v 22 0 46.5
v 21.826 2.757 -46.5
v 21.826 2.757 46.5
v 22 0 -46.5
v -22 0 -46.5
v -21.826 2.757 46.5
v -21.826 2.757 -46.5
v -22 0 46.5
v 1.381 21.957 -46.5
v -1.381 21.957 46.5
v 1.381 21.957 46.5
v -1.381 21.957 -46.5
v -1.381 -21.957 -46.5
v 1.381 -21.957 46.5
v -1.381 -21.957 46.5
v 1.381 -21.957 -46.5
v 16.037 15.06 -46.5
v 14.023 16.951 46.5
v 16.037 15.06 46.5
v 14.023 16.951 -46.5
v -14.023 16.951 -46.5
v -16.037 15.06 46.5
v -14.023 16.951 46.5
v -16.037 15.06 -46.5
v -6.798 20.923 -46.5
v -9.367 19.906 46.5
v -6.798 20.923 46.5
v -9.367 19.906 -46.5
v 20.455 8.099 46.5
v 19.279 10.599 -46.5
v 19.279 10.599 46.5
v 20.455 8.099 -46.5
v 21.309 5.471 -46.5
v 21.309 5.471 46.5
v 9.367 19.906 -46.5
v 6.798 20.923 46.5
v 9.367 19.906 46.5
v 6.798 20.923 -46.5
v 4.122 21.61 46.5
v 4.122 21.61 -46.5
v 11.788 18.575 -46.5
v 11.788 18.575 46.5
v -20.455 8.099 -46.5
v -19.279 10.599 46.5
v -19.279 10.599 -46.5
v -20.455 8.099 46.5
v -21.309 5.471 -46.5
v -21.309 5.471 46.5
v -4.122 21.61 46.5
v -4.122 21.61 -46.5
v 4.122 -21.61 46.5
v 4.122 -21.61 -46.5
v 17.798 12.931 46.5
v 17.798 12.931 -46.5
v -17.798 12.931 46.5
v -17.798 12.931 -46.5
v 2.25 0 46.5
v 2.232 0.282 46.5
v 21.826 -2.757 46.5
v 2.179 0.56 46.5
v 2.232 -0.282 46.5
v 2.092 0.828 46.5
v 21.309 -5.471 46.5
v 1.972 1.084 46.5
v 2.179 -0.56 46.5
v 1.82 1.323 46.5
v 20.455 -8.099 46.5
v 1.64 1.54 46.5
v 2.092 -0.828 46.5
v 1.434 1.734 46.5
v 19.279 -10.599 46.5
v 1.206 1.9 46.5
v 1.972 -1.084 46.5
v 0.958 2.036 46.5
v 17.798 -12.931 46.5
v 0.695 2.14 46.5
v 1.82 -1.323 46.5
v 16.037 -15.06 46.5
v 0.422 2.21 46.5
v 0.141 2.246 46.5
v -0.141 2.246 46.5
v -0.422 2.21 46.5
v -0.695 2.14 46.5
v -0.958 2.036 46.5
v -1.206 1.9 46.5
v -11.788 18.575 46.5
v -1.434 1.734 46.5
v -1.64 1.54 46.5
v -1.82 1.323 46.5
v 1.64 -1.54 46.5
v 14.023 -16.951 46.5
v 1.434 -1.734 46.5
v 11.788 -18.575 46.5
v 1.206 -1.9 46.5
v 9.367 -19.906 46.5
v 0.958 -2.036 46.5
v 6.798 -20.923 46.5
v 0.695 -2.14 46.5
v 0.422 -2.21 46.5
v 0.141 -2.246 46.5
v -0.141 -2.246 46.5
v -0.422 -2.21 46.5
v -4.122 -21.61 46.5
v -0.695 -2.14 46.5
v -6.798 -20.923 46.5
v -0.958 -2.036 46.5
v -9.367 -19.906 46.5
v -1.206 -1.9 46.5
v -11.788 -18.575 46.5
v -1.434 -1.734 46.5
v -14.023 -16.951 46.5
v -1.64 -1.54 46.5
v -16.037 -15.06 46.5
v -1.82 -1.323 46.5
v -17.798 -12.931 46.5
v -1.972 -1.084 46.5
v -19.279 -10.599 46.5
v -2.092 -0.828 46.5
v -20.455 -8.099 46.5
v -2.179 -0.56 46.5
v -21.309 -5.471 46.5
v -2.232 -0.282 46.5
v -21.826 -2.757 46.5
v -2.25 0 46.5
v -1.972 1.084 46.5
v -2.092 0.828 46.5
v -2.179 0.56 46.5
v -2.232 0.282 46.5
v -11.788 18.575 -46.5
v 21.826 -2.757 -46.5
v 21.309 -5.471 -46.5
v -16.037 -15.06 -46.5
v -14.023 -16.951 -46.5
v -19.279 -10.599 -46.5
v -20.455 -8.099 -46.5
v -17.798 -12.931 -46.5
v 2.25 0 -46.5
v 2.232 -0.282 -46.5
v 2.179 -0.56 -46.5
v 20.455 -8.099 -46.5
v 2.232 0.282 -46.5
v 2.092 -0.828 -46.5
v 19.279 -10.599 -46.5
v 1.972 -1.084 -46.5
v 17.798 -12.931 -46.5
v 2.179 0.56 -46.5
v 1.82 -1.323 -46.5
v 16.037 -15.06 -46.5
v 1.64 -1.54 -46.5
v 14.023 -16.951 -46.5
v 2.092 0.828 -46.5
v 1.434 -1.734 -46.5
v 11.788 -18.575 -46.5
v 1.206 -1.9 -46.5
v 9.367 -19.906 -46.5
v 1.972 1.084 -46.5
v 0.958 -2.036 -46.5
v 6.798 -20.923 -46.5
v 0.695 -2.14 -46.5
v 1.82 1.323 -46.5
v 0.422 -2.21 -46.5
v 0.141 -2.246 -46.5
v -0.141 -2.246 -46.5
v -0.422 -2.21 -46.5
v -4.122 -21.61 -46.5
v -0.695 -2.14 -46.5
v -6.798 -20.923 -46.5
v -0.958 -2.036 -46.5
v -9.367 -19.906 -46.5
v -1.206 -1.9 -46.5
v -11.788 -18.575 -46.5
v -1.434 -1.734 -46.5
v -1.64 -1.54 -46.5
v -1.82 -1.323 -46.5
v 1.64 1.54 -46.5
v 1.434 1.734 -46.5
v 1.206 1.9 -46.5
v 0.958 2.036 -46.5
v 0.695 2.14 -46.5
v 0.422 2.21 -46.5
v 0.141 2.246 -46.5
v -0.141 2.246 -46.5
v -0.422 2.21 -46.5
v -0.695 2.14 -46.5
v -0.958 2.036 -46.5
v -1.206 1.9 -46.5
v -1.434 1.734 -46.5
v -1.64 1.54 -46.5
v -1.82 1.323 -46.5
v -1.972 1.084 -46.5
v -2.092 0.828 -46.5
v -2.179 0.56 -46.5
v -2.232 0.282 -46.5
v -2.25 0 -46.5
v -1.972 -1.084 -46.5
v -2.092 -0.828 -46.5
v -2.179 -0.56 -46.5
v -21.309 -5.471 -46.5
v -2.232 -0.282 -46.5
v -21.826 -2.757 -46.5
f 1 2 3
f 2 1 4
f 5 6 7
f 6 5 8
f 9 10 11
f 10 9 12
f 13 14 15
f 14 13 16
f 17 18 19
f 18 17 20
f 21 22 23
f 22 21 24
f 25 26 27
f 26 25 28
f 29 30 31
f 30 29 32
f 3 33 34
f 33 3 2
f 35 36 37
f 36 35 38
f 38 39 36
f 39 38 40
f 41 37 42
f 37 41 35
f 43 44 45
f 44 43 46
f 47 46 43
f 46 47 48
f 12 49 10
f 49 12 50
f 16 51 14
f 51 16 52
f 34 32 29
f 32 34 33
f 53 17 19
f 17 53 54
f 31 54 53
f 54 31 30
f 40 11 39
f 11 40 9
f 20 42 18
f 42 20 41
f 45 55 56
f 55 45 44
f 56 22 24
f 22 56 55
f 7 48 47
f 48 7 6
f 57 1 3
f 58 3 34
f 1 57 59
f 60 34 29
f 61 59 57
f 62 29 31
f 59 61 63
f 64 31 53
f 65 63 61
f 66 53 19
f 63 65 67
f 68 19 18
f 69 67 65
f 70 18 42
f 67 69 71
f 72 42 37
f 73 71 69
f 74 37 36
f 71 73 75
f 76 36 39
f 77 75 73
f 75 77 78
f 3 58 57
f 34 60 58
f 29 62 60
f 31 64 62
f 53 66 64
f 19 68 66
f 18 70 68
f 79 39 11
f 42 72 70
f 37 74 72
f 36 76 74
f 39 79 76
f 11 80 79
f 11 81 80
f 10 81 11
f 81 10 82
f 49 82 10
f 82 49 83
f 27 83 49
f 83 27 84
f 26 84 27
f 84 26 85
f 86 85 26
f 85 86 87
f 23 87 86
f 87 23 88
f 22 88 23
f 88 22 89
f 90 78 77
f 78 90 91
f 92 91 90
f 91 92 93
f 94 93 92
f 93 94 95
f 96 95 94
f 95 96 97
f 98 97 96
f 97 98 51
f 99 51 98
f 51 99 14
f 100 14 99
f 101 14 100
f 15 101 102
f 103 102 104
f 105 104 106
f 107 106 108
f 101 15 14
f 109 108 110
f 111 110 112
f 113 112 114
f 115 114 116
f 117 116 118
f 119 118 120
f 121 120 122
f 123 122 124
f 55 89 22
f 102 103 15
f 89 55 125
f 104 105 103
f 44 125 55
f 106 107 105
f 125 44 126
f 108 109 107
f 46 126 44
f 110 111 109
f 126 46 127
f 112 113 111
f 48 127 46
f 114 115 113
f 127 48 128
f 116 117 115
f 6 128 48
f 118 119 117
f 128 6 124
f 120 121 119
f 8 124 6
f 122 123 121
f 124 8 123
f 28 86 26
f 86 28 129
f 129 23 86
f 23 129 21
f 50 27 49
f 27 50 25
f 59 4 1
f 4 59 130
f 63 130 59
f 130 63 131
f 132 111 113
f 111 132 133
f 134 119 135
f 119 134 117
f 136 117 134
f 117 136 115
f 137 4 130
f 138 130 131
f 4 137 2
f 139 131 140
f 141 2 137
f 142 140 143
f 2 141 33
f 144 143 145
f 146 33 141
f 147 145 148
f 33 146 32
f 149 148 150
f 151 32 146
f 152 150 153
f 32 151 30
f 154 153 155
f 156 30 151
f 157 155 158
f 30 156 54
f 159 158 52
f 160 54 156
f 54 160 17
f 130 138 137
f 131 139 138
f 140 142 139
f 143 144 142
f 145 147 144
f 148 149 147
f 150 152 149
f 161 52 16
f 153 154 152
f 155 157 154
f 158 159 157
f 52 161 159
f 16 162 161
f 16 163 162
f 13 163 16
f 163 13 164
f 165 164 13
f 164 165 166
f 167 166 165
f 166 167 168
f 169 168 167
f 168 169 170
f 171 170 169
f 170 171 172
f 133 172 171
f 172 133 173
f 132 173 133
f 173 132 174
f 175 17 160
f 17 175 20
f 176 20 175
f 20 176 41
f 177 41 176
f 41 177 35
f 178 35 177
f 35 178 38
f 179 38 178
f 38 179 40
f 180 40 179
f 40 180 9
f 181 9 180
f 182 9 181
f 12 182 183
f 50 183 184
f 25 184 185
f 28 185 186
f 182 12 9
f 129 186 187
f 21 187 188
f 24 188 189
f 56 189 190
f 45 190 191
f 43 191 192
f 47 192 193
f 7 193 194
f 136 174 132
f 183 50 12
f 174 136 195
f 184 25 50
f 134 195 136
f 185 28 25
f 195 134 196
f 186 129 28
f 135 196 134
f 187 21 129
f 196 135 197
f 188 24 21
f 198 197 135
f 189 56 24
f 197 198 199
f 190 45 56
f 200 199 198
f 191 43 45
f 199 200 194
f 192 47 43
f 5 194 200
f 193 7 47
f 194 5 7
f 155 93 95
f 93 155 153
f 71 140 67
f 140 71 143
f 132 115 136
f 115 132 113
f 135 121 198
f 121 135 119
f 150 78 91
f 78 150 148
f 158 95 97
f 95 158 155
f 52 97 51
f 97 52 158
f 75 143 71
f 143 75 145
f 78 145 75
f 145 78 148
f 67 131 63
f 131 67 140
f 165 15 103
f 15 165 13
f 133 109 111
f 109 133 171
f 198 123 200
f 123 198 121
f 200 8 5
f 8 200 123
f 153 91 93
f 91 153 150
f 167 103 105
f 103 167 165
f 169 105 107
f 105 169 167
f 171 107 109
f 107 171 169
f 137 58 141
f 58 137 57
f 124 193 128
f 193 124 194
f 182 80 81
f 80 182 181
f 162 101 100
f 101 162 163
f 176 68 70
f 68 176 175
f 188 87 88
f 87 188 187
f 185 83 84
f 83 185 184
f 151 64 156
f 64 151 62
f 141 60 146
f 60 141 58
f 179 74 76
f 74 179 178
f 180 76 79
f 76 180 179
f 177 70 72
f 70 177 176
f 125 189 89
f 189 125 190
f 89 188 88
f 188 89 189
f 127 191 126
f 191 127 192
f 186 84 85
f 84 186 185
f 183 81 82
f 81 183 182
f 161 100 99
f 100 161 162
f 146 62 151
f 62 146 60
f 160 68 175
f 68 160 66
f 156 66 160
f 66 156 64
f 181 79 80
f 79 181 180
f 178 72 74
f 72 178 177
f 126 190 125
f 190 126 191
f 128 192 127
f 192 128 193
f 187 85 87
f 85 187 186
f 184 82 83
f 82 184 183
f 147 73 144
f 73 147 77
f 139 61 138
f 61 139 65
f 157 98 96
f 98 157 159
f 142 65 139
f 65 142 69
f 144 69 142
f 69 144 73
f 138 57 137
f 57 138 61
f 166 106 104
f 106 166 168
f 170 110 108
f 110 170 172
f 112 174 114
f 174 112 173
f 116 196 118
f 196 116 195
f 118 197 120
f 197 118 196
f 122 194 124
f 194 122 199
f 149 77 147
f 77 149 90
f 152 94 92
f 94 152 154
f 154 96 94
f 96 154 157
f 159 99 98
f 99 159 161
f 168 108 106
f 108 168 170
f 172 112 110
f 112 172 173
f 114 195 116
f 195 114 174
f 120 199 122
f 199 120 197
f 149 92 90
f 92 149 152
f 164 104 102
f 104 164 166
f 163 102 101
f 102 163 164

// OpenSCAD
$fn = 50;


difference() {
	union() {
		translate(v = [0, 0, -46.5000000000]) {
			cylinder(h = 93, r = 22.0000000000);
		}
	}
	union() {
		translate(v = [0, 0, -100.0000000000]) {
			cylinder(h = 200, r = 2.2500000000);
		}
	}
}
